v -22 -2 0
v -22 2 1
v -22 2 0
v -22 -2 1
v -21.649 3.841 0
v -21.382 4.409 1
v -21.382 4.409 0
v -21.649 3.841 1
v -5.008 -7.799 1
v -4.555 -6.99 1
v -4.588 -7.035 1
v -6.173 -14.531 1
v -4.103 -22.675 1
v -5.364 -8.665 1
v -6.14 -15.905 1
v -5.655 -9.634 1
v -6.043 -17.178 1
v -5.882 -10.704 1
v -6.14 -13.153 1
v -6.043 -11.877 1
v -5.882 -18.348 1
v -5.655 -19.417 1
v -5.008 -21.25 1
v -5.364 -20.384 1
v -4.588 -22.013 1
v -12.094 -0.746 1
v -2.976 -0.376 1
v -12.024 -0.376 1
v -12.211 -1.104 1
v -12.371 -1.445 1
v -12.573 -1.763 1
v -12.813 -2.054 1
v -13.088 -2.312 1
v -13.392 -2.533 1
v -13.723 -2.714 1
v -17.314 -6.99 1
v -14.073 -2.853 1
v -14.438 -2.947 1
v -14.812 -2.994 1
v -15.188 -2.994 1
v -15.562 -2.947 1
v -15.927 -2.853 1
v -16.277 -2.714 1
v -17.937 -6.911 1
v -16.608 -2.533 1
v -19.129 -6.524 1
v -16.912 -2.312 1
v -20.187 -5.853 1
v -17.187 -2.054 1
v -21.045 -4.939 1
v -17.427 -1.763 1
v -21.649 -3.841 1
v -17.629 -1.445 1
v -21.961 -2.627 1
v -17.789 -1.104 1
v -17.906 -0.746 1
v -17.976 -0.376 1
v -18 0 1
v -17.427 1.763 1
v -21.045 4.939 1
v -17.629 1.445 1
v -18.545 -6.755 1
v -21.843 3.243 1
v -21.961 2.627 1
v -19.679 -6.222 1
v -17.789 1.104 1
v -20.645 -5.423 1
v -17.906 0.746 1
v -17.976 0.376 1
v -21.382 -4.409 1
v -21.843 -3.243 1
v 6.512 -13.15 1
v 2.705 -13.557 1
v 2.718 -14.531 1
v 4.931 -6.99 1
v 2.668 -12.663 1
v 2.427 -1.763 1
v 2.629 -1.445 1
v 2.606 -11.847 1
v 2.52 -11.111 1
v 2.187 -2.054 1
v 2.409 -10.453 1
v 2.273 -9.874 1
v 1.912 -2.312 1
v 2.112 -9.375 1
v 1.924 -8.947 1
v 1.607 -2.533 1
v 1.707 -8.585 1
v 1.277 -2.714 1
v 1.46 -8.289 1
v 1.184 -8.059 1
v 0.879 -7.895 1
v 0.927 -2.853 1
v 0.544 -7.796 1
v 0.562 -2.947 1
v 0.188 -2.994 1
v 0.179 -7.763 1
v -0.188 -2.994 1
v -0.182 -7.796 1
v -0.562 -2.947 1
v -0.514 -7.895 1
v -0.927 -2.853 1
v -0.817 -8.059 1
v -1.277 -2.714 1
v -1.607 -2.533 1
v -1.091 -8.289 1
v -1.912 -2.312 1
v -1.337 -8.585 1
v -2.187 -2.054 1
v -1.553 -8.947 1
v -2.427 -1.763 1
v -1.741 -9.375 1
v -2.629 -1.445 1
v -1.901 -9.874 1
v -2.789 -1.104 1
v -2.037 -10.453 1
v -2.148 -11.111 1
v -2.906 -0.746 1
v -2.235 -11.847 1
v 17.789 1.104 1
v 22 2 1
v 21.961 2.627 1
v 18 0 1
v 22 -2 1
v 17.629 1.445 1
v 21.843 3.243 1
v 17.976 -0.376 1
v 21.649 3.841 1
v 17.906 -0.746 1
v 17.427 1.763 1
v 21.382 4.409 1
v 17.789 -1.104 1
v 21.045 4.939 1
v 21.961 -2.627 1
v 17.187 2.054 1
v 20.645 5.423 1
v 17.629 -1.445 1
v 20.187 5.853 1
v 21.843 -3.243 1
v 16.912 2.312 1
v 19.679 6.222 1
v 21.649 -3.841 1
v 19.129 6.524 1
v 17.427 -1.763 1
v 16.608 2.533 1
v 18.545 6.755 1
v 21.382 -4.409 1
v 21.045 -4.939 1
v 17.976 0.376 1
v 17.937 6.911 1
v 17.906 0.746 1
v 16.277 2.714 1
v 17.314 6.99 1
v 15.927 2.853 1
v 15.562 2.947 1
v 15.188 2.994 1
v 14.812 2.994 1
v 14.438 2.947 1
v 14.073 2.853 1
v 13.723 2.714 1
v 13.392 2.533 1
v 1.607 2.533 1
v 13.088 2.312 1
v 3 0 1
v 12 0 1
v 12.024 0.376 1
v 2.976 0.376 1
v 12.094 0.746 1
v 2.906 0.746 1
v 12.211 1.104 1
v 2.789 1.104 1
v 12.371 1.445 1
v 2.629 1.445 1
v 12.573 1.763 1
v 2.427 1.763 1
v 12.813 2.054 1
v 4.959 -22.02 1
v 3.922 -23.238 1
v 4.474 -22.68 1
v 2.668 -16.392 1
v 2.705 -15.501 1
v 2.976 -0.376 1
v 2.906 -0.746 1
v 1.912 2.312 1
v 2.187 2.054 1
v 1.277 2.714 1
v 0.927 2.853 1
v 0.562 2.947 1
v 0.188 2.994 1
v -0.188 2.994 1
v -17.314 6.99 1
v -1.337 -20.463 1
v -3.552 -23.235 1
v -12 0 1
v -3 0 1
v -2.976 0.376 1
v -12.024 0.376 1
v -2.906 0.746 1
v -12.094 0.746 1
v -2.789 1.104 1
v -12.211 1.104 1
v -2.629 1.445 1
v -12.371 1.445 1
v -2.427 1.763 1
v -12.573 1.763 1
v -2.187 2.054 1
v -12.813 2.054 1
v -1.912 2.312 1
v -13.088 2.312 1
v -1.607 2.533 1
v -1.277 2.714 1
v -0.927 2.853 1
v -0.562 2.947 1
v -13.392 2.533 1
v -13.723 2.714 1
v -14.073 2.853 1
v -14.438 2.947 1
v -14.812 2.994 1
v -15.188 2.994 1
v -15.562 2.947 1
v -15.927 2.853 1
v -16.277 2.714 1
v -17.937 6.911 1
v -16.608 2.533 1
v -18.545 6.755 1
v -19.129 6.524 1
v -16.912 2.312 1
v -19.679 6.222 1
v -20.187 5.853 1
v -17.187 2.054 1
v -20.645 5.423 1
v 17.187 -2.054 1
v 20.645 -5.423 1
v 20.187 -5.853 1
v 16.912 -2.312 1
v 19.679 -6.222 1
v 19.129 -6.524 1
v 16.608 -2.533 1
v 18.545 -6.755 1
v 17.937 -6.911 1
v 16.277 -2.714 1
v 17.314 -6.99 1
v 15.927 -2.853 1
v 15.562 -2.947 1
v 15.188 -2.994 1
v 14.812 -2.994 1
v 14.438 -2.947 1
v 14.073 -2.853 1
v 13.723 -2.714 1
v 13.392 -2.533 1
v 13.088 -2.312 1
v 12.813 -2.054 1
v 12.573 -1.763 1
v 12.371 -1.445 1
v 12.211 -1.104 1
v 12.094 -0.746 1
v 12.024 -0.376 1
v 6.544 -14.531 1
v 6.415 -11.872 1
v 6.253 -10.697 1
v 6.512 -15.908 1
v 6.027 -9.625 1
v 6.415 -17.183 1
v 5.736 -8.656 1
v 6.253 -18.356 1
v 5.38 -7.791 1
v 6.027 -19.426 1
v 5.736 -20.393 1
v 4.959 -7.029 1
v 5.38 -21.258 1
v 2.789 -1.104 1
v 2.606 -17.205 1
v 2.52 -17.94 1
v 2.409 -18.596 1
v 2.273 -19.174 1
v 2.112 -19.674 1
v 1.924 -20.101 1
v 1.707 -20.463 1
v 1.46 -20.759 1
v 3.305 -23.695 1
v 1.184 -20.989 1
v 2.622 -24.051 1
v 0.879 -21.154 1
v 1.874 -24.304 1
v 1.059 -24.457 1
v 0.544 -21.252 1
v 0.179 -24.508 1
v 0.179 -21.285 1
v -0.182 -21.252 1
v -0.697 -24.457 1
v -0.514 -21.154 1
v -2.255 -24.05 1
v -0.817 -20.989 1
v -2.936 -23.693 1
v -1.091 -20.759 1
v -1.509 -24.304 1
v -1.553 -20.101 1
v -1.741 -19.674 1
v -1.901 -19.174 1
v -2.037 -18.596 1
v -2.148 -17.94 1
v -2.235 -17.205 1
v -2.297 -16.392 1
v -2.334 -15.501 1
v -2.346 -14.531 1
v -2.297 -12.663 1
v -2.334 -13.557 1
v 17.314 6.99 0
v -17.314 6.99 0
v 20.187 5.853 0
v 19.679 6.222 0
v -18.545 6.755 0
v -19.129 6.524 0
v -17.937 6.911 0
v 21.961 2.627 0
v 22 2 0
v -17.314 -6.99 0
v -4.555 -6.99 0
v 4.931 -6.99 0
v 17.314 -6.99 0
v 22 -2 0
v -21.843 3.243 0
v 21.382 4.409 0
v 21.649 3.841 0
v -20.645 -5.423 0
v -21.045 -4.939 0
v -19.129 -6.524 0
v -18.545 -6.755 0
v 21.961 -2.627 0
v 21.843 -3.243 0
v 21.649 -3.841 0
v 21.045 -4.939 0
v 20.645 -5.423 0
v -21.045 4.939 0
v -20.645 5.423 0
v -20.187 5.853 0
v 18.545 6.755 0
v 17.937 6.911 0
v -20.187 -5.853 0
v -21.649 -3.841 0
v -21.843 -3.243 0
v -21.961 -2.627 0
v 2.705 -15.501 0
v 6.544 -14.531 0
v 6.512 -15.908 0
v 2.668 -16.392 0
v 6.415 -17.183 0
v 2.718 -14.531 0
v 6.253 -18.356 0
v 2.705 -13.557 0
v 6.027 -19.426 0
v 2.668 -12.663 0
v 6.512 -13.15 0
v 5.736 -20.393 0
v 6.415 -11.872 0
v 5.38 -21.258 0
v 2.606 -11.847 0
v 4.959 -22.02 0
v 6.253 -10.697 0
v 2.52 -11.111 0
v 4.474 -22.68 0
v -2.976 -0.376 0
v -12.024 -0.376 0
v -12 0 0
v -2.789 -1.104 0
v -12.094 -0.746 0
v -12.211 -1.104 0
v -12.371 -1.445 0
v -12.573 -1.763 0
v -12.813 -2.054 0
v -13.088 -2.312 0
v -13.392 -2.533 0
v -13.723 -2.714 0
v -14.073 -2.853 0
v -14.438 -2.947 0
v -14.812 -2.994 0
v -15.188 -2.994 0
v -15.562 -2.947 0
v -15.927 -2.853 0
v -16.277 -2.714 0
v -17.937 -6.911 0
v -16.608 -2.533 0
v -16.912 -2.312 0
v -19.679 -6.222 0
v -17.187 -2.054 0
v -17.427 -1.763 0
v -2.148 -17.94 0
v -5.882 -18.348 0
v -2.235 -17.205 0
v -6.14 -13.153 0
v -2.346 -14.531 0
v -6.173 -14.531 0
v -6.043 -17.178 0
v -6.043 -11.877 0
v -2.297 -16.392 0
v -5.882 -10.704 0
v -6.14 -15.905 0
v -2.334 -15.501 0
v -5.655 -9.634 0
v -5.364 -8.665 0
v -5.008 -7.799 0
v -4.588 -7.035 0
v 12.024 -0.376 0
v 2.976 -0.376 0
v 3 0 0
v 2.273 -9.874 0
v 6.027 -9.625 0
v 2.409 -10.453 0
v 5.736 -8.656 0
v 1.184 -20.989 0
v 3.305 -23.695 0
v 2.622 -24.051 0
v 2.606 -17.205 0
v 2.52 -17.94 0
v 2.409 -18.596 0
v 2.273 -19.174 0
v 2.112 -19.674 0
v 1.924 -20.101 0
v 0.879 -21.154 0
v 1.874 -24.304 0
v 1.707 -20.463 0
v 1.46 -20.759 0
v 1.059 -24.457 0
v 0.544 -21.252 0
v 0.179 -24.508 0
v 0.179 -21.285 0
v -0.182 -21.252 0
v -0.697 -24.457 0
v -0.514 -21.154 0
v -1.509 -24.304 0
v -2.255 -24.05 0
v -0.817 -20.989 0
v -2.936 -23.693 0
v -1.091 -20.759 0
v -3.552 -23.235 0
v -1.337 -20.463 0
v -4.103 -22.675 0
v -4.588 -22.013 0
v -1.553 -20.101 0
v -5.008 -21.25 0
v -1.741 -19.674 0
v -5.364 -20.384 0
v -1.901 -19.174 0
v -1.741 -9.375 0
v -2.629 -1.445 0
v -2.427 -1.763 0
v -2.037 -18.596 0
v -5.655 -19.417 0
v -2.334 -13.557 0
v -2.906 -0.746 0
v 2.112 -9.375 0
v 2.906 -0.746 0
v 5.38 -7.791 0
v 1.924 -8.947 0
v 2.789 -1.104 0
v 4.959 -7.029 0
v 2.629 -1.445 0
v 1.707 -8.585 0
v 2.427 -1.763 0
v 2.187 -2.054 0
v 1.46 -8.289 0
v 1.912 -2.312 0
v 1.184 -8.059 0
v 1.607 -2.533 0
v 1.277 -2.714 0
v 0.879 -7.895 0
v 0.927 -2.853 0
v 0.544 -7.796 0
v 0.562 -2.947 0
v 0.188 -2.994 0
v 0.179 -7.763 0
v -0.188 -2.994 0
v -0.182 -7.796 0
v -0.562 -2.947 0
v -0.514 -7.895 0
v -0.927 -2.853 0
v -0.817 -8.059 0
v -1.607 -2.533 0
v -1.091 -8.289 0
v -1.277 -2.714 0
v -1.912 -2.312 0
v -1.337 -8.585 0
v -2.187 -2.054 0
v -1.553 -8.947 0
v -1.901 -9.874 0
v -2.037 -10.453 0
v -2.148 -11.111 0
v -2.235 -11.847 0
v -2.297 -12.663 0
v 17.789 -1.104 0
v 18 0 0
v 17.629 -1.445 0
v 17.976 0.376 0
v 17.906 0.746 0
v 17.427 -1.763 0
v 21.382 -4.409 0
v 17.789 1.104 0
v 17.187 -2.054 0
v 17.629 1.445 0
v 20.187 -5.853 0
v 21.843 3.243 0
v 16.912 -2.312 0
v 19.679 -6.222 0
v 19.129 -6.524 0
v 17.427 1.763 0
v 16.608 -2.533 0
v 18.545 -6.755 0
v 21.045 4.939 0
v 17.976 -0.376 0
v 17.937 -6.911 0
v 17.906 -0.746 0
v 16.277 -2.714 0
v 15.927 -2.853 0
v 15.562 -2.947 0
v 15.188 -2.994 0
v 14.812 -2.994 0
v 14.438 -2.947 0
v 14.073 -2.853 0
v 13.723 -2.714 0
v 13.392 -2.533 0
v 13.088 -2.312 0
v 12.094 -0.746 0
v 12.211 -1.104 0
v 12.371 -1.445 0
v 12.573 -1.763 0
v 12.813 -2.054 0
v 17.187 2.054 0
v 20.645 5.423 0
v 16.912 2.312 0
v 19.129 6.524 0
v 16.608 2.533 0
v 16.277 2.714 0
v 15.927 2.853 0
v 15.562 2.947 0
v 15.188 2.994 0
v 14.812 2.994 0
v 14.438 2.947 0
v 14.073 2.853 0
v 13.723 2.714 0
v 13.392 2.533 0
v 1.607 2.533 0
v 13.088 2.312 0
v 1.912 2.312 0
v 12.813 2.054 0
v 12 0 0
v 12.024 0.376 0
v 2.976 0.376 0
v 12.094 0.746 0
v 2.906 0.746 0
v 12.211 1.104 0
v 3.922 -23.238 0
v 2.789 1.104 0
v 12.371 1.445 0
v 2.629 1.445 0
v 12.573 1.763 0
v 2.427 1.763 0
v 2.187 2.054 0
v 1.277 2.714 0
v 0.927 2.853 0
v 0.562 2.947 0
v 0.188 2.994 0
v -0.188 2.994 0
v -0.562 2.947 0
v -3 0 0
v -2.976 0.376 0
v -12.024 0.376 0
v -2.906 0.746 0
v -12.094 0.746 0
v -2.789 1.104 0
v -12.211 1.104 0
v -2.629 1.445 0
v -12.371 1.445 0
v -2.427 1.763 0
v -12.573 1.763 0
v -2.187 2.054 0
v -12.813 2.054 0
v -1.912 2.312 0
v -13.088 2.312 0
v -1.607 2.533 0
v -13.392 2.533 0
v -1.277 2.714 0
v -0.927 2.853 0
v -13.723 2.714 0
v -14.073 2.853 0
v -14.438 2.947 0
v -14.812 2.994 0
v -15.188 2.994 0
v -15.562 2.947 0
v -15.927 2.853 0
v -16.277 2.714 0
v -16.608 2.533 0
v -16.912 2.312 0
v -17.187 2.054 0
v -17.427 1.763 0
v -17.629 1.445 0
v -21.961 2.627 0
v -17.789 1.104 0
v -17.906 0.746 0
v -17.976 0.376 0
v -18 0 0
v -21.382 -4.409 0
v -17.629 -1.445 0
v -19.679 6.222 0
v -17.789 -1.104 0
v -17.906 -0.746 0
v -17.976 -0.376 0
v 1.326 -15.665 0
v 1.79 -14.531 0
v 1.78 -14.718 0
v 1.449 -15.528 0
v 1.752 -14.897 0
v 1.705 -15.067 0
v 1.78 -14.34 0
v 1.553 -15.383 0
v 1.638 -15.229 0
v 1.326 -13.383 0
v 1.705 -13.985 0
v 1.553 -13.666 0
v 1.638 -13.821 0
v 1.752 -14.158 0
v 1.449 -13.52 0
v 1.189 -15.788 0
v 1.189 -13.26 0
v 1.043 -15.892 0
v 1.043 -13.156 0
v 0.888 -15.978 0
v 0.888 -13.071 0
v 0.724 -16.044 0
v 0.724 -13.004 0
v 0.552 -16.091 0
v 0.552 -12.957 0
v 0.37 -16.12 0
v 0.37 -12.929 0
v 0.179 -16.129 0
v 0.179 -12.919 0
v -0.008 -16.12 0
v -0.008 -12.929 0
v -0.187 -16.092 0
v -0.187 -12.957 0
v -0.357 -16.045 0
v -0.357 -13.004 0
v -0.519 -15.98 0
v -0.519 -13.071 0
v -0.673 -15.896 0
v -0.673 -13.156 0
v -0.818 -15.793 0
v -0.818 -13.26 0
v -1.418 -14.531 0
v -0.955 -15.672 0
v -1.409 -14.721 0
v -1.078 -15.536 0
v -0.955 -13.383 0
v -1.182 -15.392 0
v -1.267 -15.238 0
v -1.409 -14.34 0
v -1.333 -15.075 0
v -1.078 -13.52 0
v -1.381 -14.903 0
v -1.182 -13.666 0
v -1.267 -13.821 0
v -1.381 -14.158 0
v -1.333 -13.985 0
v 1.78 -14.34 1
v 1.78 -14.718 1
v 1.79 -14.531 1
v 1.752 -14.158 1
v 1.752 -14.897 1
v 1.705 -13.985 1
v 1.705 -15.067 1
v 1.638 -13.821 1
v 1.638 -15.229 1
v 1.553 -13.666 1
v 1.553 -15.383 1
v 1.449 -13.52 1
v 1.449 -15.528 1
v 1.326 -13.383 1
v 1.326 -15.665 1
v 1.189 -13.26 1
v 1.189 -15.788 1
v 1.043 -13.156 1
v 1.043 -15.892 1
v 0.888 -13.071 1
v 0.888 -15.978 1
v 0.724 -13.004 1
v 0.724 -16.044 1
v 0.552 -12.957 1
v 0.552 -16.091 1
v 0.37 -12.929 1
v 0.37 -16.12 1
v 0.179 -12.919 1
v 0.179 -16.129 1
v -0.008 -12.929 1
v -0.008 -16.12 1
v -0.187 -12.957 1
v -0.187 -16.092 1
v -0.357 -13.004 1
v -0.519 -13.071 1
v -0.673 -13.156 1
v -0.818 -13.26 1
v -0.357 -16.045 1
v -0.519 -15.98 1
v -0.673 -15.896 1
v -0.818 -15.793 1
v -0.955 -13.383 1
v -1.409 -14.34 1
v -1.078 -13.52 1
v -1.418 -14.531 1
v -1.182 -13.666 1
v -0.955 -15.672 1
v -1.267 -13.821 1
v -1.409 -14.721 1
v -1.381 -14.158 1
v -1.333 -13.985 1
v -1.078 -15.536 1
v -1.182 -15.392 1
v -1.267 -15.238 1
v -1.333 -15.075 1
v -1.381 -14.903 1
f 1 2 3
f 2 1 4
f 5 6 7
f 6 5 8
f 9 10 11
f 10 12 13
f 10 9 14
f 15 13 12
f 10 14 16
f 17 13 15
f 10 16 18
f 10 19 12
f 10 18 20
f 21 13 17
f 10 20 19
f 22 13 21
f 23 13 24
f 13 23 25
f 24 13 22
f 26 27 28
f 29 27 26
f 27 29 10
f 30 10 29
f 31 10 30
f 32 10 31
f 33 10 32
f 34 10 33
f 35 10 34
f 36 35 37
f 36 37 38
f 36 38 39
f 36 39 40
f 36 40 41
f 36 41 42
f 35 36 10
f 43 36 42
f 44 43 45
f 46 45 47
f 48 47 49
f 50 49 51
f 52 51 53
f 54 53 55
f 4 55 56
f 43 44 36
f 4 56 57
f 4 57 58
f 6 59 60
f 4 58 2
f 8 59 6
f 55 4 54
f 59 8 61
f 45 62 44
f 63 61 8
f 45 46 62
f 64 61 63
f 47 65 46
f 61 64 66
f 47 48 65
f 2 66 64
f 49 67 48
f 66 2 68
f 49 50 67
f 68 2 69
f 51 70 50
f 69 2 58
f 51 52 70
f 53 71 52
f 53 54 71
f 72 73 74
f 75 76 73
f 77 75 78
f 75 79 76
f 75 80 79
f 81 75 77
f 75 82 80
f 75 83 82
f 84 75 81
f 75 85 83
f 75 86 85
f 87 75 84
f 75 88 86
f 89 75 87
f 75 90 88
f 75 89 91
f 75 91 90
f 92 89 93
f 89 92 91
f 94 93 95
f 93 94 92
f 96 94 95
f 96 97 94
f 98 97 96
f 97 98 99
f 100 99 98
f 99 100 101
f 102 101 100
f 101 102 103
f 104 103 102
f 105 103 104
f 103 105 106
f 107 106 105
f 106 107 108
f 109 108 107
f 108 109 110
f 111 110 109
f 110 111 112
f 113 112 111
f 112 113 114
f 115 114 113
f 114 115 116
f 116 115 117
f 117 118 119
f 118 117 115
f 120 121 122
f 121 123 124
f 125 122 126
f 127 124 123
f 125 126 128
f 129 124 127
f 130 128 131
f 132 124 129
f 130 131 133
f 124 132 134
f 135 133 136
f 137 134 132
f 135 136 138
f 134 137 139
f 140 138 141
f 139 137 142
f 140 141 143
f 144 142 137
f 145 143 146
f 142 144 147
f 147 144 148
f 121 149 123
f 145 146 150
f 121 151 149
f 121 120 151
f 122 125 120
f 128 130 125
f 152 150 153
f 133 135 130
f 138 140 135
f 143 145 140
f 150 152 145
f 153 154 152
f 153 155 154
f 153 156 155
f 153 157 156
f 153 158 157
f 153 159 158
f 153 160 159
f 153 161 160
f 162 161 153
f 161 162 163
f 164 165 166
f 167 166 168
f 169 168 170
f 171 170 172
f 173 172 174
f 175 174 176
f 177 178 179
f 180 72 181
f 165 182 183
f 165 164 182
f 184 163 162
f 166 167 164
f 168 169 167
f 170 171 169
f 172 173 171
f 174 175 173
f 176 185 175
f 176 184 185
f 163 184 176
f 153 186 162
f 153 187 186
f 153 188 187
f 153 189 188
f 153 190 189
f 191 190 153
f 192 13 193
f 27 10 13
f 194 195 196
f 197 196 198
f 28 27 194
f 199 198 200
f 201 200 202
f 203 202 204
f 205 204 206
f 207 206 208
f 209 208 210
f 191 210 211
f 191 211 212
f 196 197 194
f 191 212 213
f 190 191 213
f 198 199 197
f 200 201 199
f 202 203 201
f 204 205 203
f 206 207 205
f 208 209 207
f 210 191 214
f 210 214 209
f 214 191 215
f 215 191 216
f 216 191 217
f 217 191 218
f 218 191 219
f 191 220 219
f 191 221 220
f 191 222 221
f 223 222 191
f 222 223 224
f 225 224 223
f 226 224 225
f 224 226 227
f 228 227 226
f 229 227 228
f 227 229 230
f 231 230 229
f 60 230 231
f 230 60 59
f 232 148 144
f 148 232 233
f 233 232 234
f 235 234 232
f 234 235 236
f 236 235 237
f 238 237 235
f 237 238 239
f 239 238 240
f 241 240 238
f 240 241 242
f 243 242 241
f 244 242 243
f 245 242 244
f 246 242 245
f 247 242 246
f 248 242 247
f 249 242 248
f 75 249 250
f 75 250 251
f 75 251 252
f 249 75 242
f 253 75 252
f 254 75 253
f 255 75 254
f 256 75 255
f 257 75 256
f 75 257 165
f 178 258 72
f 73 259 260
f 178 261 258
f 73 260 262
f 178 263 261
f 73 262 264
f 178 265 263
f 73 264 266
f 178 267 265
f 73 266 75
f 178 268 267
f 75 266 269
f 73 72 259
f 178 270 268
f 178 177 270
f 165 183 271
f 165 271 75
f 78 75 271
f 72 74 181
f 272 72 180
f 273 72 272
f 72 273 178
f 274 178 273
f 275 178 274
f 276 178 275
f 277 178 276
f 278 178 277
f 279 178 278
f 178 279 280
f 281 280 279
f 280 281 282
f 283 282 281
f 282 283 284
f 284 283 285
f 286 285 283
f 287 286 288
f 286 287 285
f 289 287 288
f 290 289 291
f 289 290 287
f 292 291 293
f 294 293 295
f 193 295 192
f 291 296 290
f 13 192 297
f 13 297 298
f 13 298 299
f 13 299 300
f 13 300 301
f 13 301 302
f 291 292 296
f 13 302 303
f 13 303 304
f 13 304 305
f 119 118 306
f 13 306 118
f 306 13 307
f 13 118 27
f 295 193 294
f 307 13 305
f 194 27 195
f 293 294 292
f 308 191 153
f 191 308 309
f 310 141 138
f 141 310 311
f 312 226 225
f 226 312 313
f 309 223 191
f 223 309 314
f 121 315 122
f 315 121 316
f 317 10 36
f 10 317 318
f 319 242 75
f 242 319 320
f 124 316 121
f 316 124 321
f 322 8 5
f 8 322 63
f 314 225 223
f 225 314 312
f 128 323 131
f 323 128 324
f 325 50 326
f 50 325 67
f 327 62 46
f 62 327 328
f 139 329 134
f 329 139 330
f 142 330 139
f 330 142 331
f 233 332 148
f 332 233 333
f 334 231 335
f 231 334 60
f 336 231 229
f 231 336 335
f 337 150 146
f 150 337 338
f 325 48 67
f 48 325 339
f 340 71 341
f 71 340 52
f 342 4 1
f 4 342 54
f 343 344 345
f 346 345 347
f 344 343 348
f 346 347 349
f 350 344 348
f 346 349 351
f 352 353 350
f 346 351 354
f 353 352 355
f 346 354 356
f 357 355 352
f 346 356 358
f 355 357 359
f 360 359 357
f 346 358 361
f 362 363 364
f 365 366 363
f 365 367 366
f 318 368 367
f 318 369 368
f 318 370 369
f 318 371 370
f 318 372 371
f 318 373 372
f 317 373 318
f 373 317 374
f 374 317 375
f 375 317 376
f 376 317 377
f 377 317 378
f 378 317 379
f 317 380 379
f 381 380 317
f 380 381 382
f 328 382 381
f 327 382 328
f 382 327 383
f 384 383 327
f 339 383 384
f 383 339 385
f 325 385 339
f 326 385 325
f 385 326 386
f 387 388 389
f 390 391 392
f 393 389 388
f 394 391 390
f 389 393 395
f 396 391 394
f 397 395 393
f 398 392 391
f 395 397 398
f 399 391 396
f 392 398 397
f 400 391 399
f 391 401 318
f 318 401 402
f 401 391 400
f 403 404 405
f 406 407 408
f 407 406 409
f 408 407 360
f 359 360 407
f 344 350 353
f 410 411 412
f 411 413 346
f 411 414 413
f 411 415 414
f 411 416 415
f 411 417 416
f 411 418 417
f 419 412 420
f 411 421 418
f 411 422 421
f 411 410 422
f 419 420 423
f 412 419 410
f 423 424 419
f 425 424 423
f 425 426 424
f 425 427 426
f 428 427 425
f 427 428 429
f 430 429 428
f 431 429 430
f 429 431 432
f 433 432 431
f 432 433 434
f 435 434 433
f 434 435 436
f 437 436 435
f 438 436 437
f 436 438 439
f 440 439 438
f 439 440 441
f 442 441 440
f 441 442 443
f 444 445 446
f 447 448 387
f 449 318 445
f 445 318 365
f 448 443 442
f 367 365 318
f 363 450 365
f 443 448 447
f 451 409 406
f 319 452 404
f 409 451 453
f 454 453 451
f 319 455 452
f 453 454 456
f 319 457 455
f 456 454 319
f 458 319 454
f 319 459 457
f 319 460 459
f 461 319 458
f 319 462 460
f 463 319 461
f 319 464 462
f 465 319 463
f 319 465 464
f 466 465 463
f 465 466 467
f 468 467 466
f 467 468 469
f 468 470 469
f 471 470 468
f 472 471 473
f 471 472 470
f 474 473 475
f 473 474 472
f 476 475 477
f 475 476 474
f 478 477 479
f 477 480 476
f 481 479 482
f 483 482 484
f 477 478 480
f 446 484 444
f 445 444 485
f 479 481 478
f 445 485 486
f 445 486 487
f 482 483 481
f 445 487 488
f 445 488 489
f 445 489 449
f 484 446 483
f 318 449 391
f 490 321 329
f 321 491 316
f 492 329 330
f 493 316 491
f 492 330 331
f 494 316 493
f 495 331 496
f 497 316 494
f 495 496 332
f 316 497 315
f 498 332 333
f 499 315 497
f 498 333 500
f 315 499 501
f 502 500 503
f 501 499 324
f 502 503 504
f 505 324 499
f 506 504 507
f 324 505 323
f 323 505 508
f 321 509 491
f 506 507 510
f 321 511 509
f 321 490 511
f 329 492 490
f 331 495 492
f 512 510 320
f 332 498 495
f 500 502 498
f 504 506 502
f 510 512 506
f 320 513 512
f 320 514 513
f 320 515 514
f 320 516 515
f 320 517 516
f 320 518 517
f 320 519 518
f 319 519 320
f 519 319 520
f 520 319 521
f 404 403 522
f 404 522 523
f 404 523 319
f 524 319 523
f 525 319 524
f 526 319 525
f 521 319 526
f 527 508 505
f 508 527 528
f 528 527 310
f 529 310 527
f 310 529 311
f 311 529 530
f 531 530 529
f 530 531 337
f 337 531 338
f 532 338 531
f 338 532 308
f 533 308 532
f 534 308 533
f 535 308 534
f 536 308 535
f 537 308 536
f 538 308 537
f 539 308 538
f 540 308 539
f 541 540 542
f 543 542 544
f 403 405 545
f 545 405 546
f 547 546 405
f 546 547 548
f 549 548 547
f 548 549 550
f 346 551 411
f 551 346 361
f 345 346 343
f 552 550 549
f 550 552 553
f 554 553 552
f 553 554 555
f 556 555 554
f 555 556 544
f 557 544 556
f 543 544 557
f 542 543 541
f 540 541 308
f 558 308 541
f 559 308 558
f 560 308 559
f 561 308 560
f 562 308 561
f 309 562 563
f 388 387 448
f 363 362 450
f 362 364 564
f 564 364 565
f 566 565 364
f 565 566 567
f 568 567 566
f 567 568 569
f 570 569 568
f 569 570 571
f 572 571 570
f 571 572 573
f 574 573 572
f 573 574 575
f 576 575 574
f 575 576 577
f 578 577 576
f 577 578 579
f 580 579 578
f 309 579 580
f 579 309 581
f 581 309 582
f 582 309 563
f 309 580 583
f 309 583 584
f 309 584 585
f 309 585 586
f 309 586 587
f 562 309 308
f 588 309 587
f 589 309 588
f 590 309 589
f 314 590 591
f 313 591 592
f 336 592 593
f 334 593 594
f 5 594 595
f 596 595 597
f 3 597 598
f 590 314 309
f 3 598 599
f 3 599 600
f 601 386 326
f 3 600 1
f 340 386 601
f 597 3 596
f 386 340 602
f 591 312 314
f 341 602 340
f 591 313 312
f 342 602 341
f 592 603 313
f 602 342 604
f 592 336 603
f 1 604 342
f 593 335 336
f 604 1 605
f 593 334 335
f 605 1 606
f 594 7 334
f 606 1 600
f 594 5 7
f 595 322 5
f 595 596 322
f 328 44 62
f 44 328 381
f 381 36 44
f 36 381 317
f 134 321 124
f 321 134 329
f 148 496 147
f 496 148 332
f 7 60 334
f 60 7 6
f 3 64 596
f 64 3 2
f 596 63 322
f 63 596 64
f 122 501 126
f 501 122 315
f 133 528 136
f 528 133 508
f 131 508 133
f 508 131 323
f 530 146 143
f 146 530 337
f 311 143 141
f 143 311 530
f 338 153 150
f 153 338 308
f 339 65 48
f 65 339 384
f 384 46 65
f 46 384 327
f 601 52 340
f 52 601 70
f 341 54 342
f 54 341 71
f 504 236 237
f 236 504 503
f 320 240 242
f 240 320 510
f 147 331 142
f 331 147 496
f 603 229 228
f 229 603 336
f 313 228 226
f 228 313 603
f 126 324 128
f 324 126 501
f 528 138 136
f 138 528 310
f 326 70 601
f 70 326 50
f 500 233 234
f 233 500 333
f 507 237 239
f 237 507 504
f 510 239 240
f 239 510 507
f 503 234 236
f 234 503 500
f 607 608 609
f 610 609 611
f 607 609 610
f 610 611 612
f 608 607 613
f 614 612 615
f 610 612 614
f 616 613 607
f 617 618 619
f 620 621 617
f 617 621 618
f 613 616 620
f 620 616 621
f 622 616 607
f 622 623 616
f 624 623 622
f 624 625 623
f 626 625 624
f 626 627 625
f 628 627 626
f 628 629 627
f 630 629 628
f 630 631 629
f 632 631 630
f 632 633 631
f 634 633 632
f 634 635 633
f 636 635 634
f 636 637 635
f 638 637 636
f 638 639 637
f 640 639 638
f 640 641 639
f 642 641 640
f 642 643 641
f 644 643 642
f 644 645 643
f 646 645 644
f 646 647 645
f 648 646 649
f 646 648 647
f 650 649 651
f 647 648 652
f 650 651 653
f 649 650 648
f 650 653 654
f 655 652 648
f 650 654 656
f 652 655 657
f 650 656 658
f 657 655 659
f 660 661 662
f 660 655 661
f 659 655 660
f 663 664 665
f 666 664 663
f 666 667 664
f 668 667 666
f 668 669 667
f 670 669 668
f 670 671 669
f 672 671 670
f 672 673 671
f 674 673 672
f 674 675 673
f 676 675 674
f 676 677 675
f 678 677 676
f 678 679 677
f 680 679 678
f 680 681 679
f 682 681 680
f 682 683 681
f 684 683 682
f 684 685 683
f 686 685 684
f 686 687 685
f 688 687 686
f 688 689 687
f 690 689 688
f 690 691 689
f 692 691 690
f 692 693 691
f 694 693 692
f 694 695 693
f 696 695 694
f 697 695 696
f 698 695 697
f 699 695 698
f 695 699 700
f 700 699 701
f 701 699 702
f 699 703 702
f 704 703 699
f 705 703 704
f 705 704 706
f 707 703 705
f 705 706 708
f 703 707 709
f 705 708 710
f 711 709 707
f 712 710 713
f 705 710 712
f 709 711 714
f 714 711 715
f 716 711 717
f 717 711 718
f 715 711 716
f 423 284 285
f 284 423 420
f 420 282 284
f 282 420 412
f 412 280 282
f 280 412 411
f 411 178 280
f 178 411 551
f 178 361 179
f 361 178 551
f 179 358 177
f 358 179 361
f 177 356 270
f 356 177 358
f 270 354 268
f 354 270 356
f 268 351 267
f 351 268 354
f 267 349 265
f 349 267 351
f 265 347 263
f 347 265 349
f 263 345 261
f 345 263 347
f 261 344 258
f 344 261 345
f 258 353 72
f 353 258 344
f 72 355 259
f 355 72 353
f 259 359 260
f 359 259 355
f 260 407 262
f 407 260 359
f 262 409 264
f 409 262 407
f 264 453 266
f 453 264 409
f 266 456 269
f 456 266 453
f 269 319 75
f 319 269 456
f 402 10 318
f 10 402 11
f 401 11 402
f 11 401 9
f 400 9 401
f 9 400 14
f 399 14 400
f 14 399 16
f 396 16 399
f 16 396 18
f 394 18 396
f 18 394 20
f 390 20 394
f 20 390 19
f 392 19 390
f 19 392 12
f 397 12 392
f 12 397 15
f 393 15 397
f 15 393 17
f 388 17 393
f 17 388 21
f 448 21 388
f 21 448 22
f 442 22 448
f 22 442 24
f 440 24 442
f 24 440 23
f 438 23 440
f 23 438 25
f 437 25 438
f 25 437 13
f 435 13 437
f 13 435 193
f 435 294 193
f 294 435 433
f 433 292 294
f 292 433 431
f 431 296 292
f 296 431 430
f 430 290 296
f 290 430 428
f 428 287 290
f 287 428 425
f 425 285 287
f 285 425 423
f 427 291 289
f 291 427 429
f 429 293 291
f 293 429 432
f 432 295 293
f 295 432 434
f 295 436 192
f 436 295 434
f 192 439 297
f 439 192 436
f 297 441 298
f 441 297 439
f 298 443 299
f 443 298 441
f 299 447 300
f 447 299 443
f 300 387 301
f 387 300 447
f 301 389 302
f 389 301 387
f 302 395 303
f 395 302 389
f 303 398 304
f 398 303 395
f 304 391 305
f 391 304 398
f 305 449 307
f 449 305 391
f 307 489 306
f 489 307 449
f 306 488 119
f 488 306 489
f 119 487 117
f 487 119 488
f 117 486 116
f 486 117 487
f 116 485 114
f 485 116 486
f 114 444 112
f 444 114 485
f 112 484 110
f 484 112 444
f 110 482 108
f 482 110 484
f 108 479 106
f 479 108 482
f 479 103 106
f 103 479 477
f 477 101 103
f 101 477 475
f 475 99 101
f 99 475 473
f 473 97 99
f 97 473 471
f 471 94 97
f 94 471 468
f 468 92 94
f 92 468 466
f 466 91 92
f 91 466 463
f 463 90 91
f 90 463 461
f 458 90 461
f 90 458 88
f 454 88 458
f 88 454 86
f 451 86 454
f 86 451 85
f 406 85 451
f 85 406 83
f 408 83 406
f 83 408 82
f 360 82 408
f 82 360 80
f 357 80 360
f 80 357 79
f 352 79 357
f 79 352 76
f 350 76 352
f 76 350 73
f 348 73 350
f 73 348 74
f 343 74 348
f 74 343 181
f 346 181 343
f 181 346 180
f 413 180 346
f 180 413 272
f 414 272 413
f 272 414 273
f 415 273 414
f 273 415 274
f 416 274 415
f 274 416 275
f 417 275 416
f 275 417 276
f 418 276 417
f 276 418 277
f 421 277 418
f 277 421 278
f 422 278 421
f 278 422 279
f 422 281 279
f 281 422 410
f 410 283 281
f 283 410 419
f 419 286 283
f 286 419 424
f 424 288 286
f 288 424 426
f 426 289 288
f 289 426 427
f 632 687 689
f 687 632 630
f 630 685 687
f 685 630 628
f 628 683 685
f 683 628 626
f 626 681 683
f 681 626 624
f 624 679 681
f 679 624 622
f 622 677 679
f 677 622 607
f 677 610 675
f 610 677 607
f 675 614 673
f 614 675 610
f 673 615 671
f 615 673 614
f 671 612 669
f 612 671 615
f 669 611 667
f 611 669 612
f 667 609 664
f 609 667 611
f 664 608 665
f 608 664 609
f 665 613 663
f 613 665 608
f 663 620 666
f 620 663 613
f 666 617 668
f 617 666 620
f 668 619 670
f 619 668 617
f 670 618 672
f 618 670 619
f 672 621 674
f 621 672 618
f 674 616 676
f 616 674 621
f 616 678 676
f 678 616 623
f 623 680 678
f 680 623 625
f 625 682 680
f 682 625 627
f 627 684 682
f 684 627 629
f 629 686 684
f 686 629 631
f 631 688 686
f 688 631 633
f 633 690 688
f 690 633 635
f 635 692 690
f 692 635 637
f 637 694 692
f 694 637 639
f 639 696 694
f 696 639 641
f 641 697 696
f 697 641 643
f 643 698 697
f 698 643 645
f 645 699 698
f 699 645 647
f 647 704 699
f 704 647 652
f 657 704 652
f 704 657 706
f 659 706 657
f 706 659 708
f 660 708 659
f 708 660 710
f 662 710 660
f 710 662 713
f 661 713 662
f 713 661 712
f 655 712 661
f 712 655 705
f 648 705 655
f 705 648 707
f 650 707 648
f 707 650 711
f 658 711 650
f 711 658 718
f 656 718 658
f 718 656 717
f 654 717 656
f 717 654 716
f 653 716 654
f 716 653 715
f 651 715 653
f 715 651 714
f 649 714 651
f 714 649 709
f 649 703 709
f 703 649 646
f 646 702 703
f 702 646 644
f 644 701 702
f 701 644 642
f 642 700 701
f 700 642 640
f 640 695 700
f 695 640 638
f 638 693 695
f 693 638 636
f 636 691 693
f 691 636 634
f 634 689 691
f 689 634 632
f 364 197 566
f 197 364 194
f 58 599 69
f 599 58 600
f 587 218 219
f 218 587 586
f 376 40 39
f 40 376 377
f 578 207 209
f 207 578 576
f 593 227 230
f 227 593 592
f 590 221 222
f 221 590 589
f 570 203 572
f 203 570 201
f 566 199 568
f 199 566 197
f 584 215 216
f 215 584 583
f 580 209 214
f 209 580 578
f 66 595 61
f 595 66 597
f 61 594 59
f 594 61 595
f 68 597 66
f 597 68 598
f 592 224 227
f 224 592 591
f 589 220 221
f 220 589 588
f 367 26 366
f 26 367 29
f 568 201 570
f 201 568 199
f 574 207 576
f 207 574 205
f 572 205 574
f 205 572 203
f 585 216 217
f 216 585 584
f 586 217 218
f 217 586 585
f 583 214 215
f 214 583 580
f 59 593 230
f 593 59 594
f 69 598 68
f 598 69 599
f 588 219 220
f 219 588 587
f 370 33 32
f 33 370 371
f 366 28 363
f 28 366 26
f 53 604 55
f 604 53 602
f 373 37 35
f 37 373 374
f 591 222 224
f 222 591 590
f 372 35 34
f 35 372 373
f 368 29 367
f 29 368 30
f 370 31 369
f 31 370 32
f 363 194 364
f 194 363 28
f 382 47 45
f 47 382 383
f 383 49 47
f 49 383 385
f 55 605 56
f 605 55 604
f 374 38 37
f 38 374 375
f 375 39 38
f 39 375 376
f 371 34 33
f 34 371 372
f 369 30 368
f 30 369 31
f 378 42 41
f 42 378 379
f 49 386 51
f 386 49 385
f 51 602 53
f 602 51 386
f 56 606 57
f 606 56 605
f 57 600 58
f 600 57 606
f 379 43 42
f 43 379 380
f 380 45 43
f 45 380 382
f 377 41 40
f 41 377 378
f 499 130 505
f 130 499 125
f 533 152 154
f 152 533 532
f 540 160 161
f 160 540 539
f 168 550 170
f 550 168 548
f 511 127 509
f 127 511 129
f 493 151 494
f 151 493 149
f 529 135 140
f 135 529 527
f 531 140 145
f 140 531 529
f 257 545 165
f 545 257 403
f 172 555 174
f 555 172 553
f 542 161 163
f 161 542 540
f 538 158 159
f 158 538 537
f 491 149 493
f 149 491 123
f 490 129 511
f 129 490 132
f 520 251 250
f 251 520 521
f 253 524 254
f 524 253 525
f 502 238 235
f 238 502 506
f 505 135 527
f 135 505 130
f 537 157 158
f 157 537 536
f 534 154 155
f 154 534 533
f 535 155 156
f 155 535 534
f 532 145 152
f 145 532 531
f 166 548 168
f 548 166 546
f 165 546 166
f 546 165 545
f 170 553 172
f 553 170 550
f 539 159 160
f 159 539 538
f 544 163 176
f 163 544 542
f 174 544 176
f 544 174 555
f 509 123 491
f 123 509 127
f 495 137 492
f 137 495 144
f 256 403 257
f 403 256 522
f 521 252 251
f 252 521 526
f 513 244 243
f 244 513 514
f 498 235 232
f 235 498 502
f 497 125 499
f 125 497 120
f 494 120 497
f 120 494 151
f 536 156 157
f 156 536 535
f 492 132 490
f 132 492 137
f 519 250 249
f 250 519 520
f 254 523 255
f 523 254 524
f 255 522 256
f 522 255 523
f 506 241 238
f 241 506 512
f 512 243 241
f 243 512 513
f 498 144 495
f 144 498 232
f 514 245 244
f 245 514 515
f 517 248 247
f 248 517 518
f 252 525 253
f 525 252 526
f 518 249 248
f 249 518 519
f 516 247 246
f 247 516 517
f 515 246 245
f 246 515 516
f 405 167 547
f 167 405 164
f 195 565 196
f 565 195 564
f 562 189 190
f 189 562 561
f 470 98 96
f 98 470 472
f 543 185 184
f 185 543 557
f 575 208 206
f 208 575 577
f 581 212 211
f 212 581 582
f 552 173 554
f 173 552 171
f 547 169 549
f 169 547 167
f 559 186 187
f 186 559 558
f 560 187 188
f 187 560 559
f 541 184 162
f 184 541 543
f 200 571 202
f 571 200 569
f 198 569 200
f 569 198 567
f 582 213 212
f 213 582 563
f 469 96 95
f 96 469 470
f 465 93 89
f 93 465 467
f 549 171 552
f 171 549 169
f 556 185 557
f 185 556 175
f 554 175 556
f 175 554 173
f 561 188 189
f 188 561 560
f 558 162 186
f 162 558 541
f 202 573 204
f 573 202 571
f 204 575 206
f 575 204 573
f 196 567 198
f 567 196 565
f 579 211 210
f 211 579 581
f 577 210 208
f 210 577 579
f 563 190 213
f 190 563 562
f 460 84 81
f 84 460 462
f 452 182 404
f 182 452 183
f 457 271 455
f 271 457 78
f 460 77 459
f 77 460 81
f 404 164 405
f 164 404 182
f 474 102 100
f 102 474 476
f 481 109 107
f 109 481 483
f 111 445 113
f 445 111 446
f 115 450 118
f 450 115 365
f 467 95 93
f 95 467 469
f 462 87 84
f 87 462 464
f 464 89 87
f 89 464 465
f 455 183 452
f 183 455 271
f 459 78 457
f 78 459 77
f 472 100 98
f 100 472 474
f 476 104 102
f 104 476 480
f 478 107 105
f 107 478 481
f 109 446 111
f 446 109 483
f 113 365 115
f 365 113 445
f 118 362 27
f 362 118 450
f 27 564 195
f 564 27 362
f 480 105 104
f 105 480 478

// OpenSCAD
$fn = 50;


difference() {
	union() {
		translate(v = [0, 0, 0]) {
			rotate(a = [0, 0, 0]) {
				hull() {
					translate(v = [-17.0000000000, 2.0000000000, 0]) {
						rotate(a = [0, 0, 0]) {
							translate(v = [0, 0, 0]) {
								rotate(a = [0, 0, 0]) {
									cylinder(h = 1, r = 5);
								}
							}
						}
					}
					translate(v = [17.0000000000, 2.0000000000, 0]) {
						rotate(a = [0, 0, 0]) {
							translate(v = [0, 0, 0]) {
								rotate(a = [0, 0, 0]) {
									cylinder(h = 1, r = 5);
								}
							}
						}
					}
					translate(v = [-17.0000000000, -2.0000000000, 0]) {
						rotate(a = [0, 0, 0]) {
							translate(v = [0, 0, 0]) {
								rotate(a = [0, 0, 0]) {
									cylinder(h = 1, r = 5);
								}
							}
						}
					}
					translate(v = [17.0000000000, -2.0000000000, 0]) {
						rotate(a = [0, 0, 0]) {
							translate(v = [0, 0, 0]) {
								rotate(a = [0, 0, 0]) {
									cylinder(h = 1, r = 5);
								}
							}
						}
					}
				}
			}
		}
		translate(v = [0, -5, 0]) {
			rotate(a = [0, 0, 0]) {
				linear_extrude(height = 1) {
					text(font = "DejaVu Sans Mono:style=Bold", halign = "center", size = 19.0000000000, text = "0", valign = "top");
				}
			}
		}
	}
	union() {
		translate(v = [-15.0000000000, 0.0000000000, -125.0000000000]) {
			rotate(a = [0, 0, 0]) {
				cylinder(h = 250, r = 3.0000000000);
			}
		}
		translate(v = [15.0000000000, 0.0000000000, -125.0000000000]) {
			rotate(a = [0, 0, 0]) {
				cylinder(h = 250, r = 3.0000000000);
			}
		}
		translate(v = [15.0000000000, 0.0000000000, -125.0000000000]) {
			rotate(a = [0, 0, 0]) {
				cylinder(h = 250, r = 3.0000000000);
			}
		}
		translate(v = [0, 0, -125.0000000000]) {
			rotate(a = [0, 0, 0]) {
				cylinder(h = 250, r = 3.0000000000);
			}
		}
	}
}
